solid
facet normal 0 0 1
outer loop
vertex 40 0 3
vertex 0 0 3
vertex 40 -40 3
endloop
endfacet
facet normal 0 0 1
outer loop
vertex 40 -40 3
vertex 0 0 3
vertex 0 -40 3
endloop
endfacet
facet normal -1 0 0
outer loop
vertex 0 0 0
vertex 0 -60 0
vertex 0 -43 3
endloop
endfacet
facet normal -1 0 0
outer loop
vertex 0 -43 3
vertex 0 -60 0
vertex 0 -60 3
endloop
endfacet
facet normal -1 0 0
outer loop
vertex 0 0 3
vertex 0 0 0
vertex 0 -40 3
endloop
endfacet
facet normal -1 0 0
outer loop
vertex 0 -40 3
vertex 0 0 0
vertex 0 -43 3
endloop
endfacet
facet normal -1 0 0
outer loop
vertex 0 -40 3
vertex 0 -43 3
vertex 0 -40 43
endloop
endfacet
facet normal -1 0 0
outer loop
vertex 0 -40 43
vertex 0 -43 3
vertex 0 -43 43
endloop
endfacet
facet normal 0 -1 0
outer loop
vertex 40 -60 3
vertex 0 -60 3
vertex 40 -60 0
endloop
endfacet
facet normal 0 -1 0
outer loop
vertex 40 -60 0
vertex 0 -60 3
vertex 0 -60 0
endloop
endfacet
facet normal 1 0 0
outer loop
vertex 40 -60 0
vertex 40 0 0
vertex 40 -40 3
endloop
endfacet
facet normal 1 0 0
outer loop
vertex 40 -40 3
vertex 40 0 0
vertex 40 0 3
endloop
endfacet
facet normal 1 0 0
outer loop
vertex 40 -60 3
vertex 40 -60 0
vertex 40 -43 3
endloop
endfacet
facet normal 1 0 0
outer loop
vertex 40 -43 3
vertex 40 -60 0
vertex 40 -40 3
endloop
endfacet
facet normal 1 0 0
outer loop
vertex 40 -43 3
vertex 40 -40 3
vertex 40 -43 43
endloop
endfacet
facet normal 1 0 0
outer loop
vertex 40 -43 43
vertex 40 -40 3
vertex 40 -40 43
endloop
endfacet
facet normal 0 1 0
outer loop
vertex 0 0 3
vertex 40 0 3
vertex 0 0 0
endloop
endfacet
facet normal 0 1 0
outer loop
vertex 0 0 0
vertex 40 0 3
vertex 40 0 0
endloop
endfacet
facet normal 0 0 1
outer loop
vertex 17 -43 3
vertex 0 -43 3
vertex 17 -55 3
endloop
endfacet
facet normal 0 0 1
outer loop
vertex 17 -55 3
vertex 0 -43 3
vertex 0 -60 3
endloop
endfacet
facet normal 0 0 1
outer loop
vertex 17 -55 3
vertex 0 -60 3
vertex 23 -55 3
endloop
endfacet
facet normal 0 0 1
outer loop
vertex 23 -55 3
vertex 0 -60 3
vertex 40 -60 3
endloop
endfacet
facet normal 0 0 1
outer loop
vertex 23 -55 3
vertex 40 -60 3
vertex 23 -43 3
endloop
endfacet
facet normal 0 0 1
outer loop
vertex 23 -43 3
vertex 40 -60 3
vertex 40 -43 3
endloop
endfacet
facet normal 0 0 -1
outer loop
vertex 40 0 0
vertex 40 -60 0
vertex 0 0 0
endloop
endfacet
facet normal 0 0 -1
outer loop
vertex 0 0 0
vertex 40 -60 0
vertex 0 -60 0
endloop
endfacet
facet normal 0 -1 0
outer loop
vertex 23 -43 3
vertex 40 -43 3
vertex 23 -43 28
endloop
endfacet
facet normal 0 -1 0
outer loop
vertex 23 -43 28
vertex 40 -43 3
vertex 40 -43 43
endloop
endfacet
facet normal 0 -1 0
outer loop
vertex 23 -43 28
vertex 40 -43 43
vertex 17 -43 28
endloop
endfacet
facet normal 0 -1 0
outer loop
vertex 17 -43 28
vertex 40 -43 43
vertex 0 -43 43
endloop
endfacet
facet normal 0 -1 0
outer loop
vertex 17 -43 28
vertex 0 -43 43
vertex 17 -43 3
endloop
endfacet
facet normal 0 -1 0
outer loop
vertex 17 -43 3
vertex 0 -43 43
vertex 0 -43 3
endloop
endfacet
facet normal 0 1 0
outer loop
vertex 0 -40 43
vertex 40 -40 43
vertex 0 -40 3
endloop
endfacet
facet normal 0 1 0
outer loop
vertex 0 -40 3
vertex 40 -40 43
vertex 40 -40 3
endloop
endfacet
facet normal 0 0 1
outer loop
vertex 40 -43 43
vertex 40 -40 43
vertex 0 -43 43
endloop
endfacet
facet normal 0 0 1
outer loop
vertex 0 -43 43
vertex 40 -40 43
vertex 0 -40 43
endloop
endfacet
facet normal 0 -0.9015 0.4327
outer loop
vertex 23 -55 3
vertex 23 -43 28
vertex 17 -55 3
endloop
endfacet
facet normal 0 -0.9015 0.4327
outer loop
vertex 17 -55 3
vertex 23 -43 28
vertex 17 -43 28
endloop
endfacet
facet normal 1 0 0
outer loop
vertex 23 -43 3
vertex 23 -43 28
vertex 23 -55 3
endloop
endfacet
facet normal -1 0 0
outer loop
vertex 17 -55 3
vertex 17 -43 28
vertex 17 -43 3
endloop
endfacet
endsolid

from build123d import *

# Parameters (mm, degrees)
SKETCH_1_W          = 40
SKETCH_1_H          = 60
EXTRUDE_1_DEPTH     = 3
SKETCH_2_W          = 40
SKETCH_2_H          = 3
EXTRUDE_2_DEPTH     = 40
EXTRUDE_3_DEPTH     = 23
CUT_EXTRUDE_1_DEPTH = 17


with BuildPart() as part:
    # 草图1 → 凸台-拉伸1 (new body)
    with BuildSketch(Plane.XY):
        with Locations((20, -30)):
            Rectangle(SKETCH_1_W, SKETCH_1_H)
    extrude(amount=EXTRUDE_1_DEPTH)

    # 草图2 → 凸台-拉伸2 (add)
    with BuildSketch(Plane.XY.offset(3)):
        with Locations((20, -41.5)):
            Rectangle(SKETCH_2_W, SKETCH_2_H)
    extrude(amount=EXTRUDE_2_DEPTH)

    # 草图3 → 凸台-拉伸3 (add)
    with BuildSketch(Plane.ZY):
        Polygon((3, -55), (28, -43), (3, -43), align=None)
    extrude(amount=-EXTRUDE_3_DEPTH)

    # 草图3<2> → 切除-拉伸1 (cut)
    with BuildSketch(Plane.ZY):
        Polygon((3, -55), (28, -43), (3, -43), align=None)
    extrude(amount=-CUT_EXTRUDE_1_DEPTH, mode=Mode.SUBTRACT)


solid = part.part
